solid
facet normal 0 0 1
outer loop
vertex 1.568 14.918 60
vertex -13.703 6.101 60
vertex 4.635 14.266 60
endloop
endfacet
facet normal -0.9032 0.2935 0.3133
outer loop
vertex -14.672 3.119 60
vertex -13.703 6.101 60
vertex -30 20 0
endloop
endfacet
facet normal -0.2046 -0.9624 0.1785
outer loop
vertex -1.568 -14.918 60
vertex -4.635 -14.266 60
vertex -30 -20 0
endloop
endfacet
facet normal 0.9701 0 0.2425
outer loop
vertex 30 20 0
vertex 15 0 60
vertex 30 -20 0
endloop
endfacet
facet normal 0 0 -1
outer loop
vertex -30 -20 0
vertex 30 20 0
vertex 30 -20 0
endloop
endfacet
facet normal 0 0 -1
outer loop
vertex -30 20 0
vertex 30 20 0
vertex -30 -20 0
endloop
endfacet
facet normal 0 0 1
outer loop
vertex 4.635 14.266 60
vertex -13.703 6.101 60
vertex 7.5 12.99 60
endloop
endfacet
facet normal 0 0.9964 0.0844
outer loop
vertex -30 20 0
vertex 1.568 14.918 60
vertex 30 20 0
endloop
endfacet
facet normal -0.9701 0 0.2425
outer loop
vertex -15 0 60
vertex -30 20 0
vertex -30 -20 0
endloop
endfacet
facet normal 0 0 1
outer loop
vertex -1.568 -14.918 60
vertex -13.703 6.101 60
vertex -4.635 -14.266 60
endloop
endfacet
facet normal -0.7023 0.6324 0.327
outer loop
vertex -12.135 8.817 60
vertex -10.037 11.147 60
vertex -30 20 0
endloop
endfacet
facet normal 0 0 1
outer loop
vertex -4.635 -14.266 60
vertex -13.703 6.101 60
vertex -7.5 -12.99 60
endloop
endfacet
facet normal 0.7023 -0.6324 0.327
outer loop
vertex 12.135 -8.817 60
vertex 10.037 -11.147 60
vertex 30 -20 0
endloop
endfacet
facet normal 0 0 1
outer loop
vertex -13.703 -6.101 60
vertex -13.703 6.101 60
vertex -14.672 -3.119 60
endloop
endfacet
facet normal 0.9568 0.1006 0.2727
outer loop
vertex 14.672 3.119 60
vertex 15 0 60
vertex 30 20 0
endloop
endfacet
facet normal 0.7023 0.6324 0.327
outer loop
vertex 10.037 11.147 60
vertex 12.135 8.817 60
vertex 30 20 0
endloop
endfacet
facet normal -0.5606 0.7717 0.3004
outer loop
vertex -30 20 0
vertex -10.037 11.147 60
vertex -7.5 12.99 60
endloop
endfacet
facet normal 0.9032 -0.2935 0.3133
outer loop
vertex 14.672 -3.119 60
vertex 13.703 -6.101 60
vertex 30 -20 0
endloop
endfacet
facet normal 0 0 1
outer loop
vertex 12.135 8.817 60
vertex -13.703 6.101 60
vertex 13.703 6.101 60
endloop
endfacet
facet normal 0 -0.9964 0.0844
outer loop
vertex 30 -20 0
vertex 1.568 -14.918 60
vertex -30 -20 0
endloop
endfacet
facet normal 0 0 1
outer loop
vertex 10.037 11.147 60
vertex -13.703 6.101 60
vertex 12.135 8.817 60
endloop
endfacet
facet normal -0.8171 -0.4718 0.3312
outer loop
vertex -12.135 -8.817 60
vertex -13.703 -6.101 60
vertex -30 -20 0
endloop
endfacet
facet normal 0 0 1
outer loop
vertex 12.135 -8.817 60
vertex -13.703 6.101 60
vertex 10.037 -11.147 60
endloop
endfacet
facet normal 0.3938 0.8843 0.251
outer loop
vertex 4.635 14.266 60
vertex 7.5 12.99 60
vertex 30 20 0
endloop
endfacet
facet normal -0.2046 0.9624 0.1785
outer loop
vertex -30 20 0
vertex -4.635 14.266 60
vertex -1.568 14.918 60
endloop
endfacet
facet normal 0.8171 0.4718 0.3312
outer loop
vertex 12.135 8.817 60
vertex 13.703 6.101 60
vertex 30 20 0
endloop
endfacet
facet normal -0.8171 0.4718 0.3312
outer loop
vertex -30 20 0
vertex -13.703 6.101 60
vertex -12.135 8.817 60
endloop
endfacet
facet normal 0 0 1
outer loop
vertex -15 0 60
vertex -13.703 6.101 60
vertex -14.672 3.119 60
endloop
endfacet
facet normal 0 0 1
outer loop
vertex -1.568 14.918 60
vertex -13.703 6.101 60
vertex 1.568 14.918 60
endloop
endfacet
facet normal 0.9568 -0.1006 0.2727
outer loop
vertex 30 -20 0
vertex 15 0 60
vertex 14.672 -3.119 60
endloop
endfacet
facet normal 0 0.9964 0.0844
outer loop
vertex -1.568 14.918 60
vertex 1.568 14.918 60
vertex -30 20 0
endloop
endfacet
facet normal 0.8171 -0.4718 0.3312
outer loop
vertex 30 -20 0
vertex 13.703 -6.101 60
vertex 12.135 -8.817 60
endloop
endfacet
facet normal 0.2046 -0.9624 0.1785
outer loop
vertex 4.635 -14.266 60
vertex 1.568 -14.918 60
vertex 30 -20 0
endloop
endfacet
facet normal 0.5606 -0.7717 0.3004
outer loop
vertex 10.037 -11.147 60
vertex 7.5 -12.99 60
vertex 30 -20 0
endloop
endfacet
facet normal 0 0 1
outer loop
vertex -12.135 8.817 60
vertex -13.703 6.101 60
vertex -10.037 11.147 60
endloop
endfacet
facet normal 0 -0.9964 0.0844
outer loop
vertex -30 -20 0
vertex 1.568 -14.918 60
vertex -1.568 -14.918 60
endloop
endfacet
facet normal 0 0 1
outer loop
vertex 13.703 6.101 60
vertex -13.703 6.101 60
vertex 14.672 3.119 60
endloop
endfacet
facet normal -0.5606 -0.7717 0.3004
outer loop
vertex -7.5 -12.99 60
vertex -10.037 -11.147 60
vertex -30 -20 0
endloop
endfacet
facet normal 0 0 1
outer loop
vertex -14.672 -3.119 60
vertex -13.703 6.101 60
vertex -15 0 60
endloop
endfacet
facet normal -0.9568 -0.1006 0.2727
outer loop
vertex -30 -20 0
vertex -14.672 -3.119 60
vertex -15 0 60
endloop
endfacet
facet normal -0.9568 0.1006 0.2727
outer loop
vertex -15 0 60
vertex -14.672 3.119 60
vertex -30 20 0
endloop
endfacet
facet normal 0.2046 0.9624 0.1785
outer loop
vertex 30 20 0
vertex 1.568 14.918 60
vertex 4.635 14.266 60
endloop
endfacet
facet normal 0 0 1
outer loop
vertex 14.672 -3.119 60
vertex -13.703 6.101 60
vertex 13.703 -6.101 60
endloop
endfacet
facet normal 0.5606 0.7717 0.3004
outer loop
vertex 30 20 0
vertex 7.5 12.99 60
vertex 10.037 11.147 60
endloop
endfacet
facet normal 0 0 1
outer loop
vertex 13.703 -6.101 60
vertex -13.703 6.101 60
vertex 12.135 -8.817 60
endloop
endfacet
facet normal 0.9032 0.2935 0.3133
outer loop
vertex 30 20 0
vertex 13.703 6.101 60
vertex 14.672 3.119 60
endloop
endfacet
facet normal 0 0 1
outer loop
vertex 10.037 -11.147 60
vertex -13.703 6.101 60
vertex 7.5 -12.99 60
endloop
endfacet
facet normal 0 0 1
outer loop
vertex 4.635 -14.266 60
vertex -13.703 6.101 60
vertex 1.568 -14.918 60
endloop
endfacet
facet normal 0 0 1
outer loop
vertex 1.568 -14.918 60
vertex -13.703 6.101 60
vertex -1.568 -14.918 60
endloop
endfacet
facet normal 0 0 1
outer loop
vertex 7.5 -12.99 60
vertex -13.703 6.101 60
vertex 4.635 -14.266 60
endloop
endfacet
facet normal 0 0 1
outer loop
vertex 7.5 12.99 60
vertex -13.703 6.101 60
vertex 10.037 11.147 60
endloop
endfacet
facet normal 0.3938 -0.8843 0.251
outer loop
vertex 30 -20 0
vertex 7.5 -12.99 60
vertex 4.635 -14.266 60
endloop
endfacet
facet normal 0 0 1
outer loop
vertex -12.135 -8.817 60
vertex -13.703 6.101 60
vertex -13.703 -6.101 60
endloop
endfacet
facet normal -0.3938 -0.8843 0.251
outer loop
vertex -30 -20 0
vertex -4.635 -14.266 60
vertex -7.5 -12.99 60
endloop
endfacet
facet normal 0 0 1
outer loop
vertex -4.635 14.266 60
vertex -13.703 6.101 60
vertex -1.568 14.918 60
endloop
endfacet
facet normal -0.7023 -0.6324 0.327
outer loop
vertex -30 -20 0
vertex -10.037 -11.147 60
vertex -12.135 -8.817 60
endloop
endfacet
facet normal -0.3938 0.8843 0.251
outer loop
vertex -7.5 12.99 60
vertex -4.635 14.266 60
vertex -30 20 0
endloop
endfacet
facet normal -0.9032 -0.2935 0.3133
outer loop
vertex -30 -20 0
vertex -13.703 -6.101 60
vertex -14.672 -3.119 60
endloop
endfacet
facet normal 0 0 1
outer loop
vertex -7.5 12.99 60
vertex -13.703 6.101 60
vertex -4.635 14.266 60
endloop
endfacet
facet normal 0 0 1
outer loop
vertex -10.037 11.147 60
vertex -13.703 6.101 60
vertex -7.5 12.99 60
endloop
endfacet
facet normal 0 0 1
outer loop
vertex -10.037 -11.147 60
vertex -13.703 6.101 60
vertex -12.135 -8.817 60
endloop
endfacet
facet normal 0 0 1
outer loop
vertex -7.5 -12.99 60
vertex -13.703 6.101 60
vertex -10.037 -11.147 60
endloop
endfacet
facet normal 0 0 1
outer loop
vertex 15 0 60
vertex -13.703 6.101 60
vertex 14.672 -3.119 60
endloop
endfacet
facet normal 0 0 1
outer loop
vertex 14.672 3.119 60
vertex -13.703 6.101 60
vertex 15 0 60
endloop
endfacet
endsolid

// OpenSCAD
/* doodle-meta {"version":1,"parameters":{"base_width":{"label":"Base Width","description":"Width of the rectangular base along X","unit":"mm","feature":"base_width"},"base_depth":{"label":"Base Depth","description":"Depth of the rectangular base along Y","unit":"mm","feature":"base_depth"},"top_diameter":{"label":"Top Diameter","description":"Diameter of the circular top face","unit":"mm","feature":"top_diameter"},"height":{"label":"Height","description":"Total height of the transition piece","unit":"mm","feature":"height"}},"features":{"base_width":{"kind":"dimension","axis":"x","label":"Base Width"},"base_depth":{"kind":"dimension","axis":"y","label":"Base Depth"},"top_diameter":{"kind":"dimension","axis":"x","label":"Top Diameter"},"height":{"kind":"dimension","axis":"z","label":"Height"}}} */

// Parameters
base_width = 60;
base_depth = 40;
top_diameter = 30;
height = 60;

// Derived parameters
top_radius = top_diameter / 2;
base_half_w = base_width / 2;
base_half_d = base_depth / 2;

// Module to create the lofted transition piece
// Uses a linear interpolation between a rectangular base and a circular top.
// The geometry is constructed by stacking thin slices (polygons) from Z=0 to Z=height.
module transition_piece() {
    // Number of slices for smooth transition
    slices = 60;
    slice_height = height / slices;
    
    // We build the solid by unioning many thin prisms.
    // Each prism is a polygon extruded by slice_height.
    // To ensure watertightness and manifoldness, we stack them carefully.
    
    for (i = [0 : slices - 1]) {
        // Calculate interpolation factor t (0 at bottom, 1 at top)
        // Center of the slice
        z_center = (i + 0.5) * slice_height;
        t = z_center / height;
        
        // Interpolate dimensions
        // Width (X) goes from base_width to top_diameter
        current_width = base_width * (1 - t) + top_diameter * t;
        // Depth (Y) goes from base_depth to top_diameter
        current_depth = base_depth * (1 - t) + top_diameter * t;
        
        // Create the polygon for this slice
        // The polygon is centered at (0,0) in XY, then translated to z_center
        // We use a high-resolution circle approximation for the top part, 
        // but since it's a loft, the shape morphs from rect to circle.
        // A simple linear interpolation of vertices is complex for rect->circle.
        // Instead, we can use the hull() of a rectangle and a circle at each level? 
        // No, hull() of rect and circle at same Z is just the union.
        // The "loft" implies the sides are straight lines connecting the perimeters.
        
        // A robust way to do rect-to-circle loft in OpenSCAD without external libs 
        // is to use the hull() of the bottom rect and top circle? 
        // hull() of a rect and a circle creates a shape where the sides are 
        // straight lines connecting the convex hull points. 
        // For a rect and a concentric circle, the hull is exactly the transition piece 
        // described (straight sides from corners/edges to the circle).
        
        // Let's verify: 
        // Bottom: Rect 60x40. Top: Circle D30.
        // Hull(Rect, Circle) will connect the extreme points.
        // The front view will be a trapezoid.
        // The side view will be a trapezoid.
        // The top view will be the circle.
        // The bottom view will be the rectangle.
        // This matches the "Solid Rectangular-to-Circular Transition Piece" description perfectly.
        
        // So, we don't need slices. We just need hull().
    }
    
    // Re-implementing with hull() for simplicity and accuracy
    // Bottom rectangle at Z=0
    translate([0, 0, 0])
        cube([base_width, base_depth, 0.01], center=true); // Thin slab to define plane
        
    // Top circle at Z=height
    translate([0, 0, height])
        cylinder(h=0.01, r=top_radius, center=true);
}

// Main design instantiation
// We use hull() to create the solid transition.
// Note: hull() requires the objects to be non-empty.
// We use thin cubes/cylinders to define the profiles at the correct Z levels.

hull() {
    // Bottom Profile: Rectangle 60x40 at Z=0
    // Using a thin cube to define the footprint
    translate([0, 0, 0])
        cube([base_width, base_depth, 0.001], center=true);
        
    // Top Profile: Circle D30 at Z=height
    // Using a thin cylinder to define the footprint
    translate([0, 0, height])
        cylinder(h=0.001, r=top_radius, center=true);
}
